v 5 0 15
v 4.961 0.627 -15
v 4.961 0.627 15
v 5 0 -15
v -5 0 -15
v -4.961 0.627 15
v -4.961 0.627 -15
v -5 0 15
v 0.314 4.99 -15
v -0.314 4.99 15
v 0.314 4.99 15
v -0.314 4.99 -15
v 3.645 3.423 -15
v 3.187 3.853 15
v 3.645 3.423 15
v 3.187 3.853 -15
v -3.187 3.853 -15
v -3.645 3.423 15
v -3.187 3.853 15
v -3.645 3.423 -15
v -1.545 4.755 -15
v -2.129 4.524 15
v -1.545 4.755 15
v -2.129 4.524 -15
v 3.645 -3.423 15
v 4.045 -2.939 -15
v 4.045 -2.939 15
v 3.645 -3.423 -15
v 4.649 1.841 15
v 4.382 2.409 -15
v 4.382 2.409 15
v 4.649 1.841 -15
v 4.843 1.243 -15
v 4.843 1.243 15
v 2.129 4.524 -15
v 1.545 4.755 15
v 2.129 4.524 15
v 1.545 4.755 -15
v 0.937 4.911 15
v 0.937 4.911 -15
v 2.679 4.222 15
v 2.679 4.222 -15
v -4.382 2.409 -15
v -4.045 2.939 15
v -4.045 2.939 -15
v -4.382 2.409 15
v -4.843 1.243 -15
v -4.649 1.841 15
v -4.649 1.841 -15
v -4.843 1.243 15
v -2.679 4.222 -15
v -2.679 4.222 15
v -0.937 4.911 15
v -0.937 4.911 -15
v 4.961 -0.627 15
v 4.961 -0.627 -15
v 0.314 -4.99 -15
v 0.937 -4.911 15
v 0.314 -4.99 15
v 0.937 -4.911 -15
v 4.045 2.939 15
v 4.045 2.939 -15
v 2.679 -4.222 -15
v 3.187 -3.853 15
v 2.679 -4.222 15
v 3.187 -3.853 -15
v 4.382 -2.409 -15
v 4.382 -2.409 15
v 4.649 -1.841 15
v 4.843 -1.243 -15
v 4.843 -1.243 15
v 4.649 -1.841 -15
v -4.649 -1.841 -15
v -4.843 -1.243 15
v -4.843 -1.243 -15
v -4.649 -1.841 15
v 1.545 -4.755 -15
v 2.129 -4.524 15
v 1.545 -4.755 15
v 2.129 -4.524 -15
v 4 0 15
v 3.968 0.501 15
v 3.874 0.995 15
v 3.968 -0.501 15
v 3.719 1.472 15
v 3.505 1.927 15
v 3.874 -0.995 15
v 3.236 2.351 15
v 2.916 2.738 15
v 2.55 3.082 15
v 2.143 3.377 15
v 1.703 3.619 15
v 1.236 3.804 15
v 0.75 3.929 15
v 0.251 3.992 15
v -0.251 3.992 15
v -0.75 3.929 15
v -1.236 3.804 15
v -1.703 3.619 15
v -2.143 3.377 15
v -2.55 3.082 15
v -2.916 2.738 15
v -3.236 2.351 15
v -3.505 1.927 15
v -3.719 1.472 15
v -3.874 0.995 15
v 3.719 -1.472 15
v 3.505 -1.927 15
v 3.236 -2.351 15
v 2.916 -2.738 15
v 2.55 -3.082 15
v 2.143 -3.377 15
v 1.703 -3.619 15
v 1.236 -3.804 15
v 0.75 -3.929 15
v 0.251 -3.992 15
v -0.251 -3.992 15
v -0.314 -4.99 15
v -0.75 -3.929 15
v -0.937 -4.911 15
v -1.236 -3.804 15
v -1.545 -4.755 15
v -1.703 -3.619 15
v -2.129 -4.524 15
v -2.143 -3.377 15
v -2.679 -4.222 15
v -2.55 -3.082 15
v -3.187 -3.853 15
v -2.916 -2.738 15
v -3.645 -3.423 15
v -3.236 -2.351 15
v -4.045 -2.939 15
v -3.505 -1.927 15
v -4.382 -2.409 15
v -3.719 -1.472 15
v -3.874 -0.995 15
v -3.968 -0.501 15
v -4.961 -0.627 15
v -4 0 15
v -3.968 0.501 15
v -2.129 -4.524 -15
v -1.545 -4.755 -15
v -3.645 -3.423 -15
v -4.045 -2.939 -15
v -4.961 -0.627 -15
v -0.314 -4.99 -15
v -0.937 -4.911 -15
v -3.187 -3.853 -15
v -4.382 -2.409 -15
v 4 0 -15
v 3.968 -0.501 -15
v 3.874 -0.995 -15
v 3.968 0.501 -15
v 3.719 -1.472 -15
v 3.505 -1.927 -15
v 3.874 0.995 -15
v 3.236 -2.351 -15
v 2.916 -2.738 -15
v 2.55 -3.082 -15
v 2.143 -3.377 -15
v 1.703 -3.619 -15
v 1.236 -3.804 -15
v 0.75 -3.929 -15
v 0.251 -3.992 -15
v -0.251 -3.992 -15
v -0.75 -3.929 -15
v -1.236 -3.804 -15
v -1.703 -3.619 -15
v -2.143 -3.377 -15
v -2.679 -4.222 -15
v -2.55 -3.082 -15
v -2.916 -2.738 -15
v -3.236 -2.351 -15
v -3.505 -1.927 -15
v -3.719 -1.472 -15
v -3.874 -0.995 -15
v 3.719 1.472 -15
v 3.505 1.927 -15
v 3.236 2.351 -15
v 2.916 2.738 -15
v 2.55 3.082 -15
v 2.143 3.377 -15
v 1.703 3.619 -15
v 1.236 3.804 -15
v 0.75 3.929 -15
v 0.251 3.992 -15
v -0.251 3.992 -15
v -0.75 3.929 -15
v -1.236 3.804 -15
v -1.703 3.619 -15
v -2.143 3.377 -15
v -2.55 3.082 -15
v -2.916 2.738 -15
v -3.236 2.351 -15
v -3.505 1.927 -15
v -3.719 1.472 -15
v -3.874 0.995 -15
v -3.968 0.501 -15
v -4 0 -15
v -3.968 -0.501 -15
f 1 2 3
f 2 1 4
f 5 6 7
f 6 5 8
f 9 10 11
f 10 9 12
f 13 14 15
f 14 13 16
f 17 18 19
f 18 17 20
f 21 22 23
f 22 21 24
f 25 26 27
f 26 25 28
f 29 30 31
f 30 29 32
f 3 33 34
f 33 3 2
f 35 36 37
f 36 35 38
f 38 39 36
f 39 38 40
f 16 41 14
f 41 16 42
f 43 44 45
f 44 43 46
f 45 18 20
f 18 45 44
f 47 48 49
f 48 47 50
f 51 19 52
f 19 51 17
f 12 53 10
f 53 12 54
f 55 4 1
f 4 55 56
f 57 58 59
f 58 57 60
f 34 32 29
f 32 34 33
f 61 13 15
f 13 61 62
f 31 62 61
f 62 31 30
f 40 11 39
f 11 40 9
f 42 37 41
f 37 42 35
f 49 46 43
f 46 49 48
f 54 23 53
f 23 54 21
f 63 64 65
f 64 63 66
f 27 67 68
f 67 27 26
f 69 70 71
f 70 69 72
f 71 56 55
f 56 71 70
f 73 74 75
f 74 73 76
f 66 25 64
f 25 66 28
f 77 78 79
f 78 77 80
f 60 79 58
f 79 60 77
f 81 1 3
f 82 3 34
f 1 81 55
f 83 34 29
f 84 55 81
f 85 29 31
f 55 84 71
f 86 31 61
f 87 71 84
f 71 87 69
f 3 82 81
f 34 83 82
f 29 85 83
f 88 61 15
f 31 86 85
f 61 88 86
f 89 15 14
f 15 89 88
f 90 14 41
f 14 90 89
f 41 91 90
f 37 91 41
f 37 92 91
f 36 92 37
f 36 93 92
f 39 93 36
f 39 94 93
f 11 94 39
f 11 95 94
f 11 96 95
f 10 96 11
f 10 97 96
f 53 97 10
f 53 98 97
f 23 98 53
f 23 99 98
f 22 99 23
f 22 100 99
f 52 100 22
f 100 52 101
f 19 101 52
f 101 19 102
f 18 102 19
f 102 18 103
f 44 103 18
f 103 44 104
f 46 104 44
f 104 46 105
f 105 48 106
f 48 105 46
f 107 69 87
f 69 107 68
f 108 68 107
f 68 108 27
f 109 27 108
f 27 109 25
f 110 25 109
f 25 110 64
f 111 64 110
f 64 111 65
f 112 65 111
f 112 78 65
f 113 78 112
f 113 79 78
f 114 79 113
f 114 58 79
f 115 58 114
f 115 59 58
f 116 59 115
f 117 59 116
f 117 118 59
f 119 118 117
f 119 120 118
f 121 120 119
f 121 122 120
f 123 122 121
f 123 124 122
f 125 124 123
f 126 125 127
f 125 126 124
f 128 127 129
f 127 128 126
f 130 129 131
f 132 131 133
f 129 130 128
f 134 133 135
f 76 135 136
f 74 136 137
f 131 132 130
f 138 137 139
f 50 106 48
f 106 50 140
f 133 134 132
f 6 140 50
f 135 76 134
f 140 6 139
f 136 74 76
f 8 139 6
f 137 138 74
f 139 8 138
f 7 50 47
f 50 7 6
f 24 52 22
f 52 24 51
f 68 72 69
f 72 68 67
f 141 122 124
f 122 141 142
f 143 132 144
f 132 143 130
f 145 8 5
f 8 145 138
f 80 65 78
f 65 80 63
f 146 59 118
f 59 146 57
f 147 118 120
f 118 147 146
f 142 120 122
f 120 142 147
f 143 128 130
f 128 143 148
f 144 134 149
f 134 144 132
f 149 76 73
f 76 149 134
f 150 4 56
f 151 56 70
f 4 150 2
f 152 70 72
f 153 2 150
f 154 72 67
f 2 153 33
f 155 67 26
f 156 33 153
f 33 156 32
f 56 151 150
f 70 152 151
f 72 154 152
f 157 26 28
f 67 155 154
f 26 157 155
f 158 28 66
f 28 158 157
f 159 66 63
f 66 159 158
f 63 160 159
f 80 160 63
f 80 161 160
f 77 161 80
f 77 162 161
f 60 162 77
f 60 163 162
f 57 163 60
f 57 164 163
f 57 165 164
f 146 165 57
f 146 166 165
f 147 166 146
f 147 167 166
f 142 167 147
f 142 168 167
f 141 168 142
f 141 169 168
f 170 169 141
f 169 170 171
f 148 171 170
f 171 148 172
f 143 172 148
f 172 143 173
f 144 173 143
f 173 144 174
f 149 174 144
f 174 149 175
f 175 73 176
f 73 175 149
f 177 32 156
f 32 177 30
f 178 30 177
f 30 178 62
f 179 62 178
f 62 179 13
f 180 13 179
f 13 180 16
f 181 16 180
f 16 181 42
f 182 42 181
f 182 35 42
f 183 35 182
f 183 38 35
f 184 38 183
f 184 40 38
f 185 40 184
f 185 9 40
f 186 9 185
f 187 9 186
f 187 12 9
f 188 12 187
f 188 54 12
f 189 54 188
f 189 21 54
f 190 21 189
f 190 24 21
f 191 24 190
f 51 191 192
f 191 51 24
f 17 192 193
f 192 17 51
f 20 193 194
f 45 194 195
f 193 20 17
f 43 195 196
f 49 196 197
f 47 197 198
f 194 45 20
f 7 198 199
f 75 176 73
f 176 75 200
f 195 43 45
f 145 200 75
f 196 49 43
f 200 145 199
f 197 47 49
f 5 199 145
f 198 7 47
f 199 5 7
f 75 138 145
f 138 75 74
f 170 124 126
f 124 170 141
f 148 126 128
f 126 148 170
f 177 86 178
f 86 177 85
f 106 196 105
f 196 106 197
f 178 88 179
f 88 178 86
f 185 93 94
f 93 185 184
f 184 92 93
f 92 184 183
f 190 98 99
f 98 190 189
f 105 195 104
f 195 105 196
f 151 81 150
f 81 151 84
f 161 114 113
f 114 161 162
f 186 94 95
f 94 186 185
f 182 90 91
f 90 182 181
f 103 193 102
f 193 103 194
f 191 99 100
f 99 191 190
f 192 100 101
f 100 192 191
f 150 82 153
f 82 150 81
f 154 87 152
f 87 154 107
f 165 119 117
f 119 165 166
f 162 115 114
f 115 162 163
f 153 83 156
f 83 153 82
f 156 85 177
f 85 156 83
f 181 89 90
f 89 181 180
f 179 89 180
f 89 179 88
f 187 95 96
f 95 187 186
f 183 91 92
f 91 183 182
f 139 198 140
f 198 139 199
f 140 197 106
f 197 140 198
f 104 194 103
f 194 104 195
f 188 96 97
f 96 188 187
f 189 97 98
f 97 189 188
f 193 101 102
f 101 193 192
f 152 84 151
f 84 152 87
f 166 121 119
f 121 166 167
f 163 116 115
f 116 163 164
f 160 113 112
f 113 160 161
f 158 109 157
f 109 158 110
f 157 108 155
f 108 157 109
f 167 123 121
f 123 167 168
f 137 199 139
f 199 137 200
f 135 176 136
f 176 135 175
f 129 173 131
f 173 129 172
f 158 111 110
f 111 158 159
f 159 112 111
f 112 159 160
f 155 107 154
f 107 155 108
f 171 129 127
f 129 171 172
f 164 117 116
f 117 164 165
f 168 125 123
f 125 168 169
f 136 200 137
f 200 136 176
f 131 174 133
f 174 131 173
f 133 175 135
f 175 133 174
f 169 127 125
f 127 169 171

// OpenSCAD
$fn = 50;


difference() {
	union() {
		translate(v = [0, 0, -15.0000000000]) {
			cylinder(h = 30, r = 5.0000000000);
		}
	}
	union() {
		translate(v = [0, 0, -100.0000000000]) {
			cylinder(h = 200, r = 4.0000000000);
		}
	}
}
